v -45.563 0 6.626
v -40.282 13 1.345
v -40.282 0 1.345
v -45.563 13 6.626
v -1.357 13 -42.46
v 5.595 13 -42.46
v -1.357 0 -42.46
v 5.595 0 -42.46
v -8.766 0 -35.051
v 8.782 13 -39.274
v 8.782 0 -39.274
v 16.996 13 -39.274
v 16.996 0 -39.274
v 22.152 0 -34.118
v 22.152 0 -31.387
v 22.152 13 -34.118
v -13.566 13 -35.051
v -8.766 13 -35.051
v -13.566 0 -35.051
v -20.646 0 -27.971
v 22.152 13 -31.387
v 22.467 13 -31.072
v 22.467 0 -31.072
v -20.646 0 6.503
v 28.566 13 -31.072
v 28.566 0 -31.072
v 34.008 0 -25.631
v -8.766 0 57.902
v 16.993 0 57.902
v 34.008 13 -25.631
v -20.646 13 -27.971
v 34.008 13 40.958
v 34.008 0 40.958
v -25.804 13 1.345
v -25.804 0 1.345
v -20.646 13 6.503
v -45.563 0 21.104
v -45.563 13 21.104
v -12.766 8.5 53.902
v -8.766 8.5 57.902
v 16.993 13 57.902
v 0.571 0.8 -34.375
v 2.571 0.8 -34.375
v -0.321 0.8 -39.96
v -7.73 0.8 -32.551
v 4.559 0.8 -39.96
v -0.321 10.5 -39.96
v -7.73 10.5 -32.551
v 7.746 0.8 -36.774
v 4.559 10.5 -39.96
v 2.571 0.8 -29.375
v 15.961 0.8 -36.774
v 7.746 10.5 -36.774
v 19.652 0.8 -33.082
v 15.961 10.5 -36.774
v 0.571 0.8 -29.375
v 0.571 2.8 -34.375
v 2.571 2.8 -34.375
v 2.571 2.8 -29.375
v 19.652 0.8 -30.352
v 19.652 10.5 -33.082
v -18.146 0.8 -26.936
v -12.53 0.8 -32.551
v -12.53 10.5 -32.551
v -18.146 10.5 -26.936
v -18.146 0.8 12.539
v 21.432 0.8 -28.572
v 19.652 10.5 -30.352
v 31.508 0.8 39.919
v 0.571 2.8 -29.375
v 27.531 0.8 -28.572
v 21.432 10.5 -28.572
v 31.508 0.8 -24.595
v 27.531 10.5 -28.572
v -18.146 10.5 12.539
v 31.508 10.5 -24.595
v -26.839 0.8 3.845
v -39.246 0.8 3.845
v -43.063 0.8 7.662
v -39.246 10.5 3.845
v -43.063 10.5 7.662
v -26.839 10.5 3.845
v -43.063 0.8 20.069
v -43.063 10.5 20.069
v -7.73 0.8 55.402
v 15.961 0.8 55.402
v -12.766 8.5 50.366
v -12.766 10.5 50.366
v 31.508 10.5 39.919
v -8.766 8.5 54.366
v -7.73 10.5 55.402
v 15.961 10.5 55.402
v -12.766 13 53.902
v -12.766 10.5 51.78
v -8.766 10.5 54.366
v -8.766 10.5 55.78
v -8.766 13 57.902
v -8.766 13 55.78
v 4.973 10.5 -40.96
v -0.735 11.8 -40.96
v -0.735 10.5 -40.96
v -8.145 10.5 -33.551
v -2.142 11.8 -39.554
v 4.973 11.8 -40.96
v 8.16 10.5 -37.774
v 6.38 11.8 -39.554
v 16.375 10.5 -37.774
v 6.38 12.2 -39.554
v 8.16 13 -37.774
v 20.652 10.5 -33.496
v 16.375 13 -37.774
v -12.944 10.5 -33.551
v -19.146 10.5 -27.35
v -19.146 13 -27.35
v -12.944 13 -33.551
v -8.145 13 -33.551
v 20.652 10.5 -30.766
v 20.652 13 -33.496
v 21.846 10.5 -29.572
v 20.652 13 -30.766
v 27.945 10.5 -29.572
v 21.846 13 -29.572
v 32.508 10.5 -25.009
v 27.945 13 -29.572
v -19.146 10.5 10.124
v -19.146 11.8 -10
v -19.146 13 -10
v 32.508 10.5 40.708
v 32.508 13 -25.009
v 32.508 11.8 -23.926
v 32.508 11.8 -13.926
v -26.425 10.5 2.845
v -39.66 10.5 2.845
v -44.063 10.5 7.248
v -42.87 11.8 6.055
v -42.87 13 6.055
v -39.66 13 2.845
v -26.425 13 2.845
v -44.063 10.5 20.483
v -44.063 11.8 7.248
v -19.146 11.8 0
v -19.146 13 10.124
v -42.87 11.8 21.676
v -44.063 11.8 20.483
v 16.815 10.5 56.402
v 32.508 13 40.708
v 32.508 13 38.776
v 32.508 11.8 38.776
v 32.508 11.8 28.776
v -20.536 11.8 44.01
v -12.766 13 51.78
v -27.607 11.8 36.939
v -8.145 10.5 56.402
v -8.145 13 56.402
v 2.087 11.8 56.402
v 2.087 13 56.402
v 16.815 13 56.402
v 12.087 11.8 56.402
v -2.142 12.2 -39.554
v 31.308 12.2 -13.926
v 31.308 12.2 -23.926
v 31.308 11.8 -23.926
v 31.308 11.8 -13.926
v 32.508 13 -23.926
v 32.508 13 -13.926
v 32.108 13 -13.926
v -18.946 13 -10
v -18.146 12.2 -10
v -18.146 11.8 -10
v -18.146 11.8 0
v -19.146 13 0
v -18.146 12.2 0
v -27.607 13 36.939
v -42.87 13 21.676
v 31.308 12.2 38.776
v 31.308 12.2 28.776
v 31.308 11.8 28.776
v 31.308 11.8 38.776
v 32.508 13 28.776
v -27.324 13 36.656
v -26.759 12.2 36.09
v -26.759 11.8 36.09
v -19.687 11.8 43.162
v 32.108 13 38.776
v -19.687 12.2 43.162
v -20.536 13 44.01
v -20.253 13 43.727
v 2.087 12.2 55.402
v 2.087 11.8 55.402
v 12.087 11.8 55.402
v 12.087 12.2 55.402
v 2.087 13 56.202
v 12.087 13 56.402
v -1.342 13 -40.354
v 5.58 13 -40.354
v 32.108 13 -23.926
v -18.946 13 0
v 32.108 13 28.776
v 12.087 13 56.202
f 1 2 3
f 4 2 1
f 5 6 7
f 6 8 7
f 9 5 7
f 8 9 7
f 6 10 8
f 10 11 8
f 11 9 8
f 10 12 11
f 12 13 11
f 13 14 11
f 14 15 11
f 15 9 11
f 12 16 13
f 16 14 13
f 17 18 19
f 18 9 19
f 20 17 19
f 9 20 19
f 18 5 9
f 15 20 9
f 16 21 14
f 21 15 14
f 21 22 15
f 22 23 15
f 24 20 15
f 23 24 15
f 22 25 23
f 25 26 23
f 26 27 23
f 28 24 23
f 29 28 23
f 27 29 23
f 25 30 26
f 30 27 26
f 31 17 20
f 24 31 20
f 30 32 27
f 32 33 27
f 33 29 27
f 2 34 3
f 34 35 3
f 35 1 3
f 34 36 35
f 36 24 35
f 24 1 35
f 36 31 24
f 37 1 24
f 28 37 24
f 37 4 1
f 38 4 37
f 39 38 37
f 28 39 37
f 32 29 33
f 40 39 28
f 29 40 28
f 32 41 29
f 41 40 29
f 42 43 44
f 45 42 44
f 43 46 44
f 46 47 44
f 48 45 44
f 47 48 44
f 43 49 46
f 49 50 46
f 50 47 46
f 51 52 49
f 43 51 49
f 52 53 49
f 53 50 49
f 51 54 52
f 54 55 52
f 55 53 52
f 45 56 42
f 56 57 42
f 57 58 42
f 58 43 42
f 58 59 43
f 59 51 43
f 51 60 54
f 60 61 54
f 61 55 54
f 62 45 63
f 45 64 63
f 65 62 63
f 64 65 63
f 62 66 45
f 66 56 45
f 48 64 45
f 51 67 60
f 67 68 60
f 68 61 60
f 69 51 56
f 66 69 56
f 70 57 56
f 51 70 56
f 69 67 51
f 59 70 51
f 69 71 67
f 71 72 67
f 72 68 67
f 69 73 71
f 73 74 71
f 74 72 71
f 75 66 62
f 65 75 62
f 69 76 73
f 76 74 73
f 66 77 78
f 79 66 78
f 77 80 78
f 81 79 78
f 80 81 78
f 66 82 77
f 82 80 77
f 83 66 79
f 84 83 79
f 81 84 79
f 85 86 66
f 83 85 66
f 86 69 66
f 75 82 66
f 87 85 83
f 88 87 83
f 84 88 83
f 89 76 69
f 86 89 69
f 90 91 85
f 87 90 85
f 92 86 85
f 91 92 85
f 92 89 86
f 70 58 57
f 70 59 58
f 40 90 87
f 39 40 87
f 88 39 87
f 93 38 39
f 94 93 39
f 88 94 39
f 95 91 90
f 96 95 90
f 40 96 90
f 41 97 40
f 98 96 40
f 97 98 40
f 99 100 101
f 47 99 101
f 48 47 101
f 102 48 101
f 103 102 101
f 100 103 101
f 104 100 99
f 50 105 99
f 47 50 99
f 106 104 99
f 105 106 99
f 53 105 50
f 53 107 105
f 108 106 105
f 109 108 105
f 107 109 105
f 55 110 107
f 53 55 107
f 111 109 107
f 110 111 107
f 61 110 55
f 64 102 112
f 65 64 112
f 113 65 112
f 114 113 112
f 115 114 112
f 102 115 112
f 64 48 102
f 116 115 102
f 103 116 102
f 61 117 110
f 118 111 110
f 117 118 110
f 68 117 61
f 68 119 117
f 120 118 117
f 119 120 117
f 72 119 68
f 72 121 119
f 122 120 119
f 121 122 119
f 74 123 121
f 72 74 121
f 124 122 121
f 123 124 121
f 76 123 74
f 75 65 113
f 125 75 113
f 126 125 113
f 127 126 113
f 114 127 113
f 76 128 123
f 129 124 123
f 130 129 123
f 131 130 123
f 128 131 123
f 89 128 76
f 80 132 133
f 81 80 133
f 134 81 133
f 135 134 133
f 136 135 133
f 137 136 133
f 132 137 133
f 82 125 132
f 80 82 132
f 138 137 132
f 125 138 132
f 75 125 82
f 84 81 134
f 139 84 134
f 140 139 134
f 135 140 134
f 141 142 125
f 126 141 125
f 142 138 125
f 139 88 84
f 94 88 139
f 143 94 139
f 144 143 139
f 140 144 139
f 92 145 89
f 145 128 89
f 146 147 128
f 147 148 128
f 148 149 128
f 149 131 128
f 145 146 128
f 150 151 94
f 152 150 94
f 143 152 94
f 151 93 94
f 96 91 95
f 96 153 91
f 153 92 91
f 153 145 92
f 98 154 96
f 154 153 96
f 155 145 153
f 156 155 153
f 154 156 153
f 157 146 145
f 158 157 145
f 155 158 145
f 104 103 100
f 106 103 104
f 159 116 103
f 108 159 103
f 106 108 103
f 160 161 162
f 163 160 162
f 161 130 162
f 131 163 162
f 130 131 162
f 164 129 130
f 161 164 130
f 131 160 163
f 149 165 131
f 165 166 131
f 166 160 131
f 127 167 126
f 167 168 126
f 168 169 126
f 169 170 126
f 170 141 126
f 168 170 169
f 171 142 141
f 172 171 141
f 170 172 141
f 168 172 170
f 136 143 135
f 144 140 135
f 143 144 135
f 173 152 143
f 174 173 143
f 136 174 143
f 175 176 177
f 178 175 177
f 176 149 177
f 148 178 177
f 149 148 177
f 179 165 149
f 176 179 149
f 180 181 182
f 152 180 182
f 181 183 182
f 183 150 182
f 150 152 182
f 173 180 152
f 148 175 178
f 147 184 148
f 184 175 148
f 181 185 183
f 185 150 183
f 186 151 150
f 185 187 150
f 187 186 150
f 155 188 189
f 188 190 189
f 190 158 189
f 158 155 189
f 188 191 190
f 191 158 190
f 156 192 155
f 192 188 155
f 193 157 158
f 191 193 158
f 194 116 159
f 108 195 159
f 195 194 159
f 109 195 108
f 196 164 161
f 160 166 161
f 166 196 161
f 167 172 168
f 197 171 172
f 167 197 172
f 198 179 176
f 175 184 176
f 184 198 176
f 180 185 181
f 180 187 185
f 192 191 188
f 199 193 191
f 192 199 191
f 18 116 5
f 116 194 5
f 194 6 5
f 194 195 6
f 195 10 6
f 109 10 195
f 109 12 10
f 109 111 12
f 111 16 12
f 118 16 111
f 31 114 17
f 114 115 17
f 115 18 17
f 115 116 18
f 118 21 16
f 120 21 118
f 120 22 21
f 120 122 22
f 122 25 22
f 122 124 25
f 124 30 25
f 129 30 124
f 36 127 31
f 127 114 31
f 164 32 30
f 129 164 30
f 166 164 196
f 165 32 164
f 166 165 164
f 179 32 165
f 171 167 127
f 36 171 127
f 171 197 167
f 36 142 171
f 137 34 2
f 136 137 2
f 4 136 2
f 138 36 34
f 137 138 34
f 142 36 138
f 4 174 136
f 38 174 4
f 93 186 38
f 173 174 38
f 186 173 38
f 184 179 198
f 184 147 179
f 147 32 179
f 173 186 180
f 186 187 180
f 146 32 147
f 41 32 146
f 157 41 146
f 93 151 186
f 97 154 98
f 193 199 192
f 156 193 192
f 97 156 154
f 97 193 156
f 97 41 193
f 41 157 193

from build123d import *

# Parameters (mm, degrees)
ESBO_O1_W                = 100
ESBO_O1_H                = 120
RESSALTO_EXTRUS_O1_DEPTH = 13
CORTE_EXTRUS_O1_DEPTH    = 12.2
ESBO_O5_W                = 100
ESBO_O5_H                = 120
CORTE_EXTRUS_O2_DEPTH    = 24
CORTE_EXTRUS_O3_DEPTH    = 2.5
ESBO_O7_W                = 1
ESBO_O7_H                = 10
ESBO_O7_W_2              = 1.2
ESBO_O7_W_3              = 10
ESBO_O7_H_2              = 1
ESBO_O7_H_3              = 16.4405419
ESBO_O7_W_4              = 8.5960749
ESBO_O7_H_4              = 1.406812791
RESSALTO_EXTRUS_O2_DEPTH = 1.2
ESBO_O8_W                = 4
ESBO_O8_H                = 4.5
CORTE_EXTRUS_O4_DEPTH    = 10
ESBO_O9_W                = 2
ESBO_O9_H                = 5
RESSALTO_EXTRUS_O3_DEPTH = 2
CHANFRO1_SIZE            = 0.8


with BuildPart() as part:
    # Esboço1 → Ressalto-extrusão1 (new body)
    with BuildSketch(Plane(origin=(0, 0, 0), x_dir=(1, 0, 0), z_dir=(0, 1, 0))):
        with Locations((-3.939393939, -9.393939394)):
            Rectangle(ESBO_O1_W, ESBO_O1_H)
    extrude(amount=RESSALTO_EXTRUS_O1_DEPTH)

    # Esboço2 → Corte-extrusão1 (cut)
    with BuildSketch(Plane(origin=(0, 13, 0), x_dir=(1, 0, 0), z_dir=(0, 1, 0))):
        Polygon((31.508199898, -39.9190402), (31.508199898, 24.595030164), (27.530747921, 28.572482141), (21.431542719, 28.572482141), (19.652327636, 30.351697224), (19.652327636, 33.082043063), (15.960779613, 36.773591087), (7.746138477, 36.773591087), (4.559278928, 39.960450636), (-0.321107452, 39.960450636), (-7.730384523, 32.551173564), (-12.530246006, 32.551173564), (-18.145727819, 26.935691751), (-18.145727819, -12.538643207), (-26.839415482, -3.844955544), (-39.246127252, -3.844955544), (-43.063176727, -7.662005018), (-43.063176727, -20.068716788), (-7.730384523, -55.401508991), (15.960779613, -55.401508991), align=None)
    extrude(amount=-CORTE_EXTRUS_O1_DEPTH, mode=Mode.SUBTRACT)

    # Esboço5 → Corte-extrusão2 (cut)
    with BuildSketch(Plane(origin=(0, 13, 0), x_dir=(1, 0, 0), z_dir=(0, 1, 0))):
        with Locations((-3.939393939, -9.393939394)):
            Rectangle(ESBO_O5_W, ESBO_O5_H)
        Polygon((34.008199898, 16.264683084), (34.008199898, 25.63056407), (28.566281827, 31.072482141), (22.467076625, 31.072482141), (22.152327636, 31.38723113), (22.152327636, 34.117576969), (16.996313518, 39.273591087), (8.781672383, 39.273591087), (5.594812834, 42.460450636), (-1.356641358, 42.460450636), (-8.765918429, 35.051173564), (-13.565779912, 35.051173564), (-20.645727819, 27.971225657), (-20.645727819, -6.503109301), (-25.803881576, -1.344955544), (-40.281661158, -1.344955544), (-45.563176727, -6.626471112), (-45.563176727, -21.104250694), (-8.765918429, -57.901508991), (9.20558363, -57.901508991), (16.993249442, -57.901508991), (34.008199898, -40.95764084), align=None, mode=Mode.SUBTRACT)
    extrude(amount=-CORTE_EXTRUS_O2_DEPTH, mode=Mode.SUBTRACT)

    # Esboço6 → Corte-extrusão3 (cut)
    with BuildSketch(Plane(origin=(0, 13, 0), x_dir=(1, 0, 0), z_dir=(0, 1, 0))):
        Polygon((-26.42520192, -2.844955544), (-19.145727819, -10.124429645), (-19.145727819, 27.349905314), (-12.944459568, 33.551173564), (-8.144598086, 33.551173564), (-0.735321014, 40.960450636), (4.97349249, 40.960450636), (8.160352039, 37.773591087), (16.374993175, 37.773591087), (20.652327636, 33.496256625), (20.652327636, 30.765910786), (21.845756281, 29.572482141), (27.944961483, 29.572482141), (32.508199898, 25.009243726), (32.508199898, -40.708099195), (16.814790102, -56.401508991), (-8.144598086, -56.401508991), (-44.063176727, -20.48293035), (-44.063176727, -7.247791456), (-39.660340814, -2.844955544), align=None)
    extrude(amount=-CORTE_EXTRUS_O3_DEPTH, mode=Mode.SUBTRACT)

    # Esboço7 → Ressalto-extrusão2 (add)
    with BuildSketch(Plane(origin=(0, 13, 0), x_dir=(1, 0, 0), z_dir=(0, 1, 0))):
        with Locations((-18.645727819, 5)):
            Rectangle(ESBO_O7_W, ESBO_O7_H)
        with Locations((31.908199898, -33.775847323)):
            Rectangle(ESBO_O7_W_2, ESBO_O7_H)
        with Locations((31.908199898, 18.926155897)):
            Rectangle(ESBO_O7_W_2, ESBO_O7_H)
        with Locations((7.086788937, -55.901508991)):
            Rectangle(ESBO_O7_W_3, ESBO_O7_H_2)
        with Locations((-43.469924349, -13.990706428)):
            Rectangle(ESBO_O7_W_2, ESBO_O7_H_3)
        Polygon((-27.607092583, -36.939014494), (-20.536024771, -44.010082306), (-19.687496633, -43.161554169), (-26.758564445, -36.090486357), align=None)
        with Locations((2.082267831, 40.257044241)):
            Rectangle(ESBO_O7_W_4, ESBO_O7_H_4)
    extrude(amount=-RESSALTO_EXTRUS_O2_DEPTH)

    # Esboço8 → Corte-extrusão4 (cut)
    with BuildSketch(Plane.XY.offset(57.901508991)):
        with Locations((-10.765918429, 10.75)):
            Rectangle(ESBO_O8_W, ESBO_O8_H)
    extrude(amount=-CORTE_EXTRUS_O4_DEPTH, mode=Mode.SUBTRACT)

    # Esboço9 → Ressalto-extrusão3 (add)
    with BuildSketch(Plane(origin=(0, 0.8, 0), x_dir=(1, 0, 0), z_dir=(0, 1, 0))):
        with Locations((1.570718191, 31.875055196)):
            Rectangle(ESBO_O9_W, ESBO_O9_H)
    extrude(amount=RESSALTO_EXTRUS_O3_DEPTH)

    # Chanfro1
    chanfro1_edges = [part.edges().sort_by_distance(p)[0] for p in [
        (-18.145727819, 13, -5),
        (7.086788937, 13, 55.401508991),
        (31.308199898, 13, 33.775847323),
        (-23.223030539, 13, 39.626020263),
        (2.119085738, 13, -39.553637845),
        (31.308199898, 13, -18.926155897),
    ]]
    chamfer(chanfro1_edges, length=CHANFRO1_SIZE)


solid = part.part
